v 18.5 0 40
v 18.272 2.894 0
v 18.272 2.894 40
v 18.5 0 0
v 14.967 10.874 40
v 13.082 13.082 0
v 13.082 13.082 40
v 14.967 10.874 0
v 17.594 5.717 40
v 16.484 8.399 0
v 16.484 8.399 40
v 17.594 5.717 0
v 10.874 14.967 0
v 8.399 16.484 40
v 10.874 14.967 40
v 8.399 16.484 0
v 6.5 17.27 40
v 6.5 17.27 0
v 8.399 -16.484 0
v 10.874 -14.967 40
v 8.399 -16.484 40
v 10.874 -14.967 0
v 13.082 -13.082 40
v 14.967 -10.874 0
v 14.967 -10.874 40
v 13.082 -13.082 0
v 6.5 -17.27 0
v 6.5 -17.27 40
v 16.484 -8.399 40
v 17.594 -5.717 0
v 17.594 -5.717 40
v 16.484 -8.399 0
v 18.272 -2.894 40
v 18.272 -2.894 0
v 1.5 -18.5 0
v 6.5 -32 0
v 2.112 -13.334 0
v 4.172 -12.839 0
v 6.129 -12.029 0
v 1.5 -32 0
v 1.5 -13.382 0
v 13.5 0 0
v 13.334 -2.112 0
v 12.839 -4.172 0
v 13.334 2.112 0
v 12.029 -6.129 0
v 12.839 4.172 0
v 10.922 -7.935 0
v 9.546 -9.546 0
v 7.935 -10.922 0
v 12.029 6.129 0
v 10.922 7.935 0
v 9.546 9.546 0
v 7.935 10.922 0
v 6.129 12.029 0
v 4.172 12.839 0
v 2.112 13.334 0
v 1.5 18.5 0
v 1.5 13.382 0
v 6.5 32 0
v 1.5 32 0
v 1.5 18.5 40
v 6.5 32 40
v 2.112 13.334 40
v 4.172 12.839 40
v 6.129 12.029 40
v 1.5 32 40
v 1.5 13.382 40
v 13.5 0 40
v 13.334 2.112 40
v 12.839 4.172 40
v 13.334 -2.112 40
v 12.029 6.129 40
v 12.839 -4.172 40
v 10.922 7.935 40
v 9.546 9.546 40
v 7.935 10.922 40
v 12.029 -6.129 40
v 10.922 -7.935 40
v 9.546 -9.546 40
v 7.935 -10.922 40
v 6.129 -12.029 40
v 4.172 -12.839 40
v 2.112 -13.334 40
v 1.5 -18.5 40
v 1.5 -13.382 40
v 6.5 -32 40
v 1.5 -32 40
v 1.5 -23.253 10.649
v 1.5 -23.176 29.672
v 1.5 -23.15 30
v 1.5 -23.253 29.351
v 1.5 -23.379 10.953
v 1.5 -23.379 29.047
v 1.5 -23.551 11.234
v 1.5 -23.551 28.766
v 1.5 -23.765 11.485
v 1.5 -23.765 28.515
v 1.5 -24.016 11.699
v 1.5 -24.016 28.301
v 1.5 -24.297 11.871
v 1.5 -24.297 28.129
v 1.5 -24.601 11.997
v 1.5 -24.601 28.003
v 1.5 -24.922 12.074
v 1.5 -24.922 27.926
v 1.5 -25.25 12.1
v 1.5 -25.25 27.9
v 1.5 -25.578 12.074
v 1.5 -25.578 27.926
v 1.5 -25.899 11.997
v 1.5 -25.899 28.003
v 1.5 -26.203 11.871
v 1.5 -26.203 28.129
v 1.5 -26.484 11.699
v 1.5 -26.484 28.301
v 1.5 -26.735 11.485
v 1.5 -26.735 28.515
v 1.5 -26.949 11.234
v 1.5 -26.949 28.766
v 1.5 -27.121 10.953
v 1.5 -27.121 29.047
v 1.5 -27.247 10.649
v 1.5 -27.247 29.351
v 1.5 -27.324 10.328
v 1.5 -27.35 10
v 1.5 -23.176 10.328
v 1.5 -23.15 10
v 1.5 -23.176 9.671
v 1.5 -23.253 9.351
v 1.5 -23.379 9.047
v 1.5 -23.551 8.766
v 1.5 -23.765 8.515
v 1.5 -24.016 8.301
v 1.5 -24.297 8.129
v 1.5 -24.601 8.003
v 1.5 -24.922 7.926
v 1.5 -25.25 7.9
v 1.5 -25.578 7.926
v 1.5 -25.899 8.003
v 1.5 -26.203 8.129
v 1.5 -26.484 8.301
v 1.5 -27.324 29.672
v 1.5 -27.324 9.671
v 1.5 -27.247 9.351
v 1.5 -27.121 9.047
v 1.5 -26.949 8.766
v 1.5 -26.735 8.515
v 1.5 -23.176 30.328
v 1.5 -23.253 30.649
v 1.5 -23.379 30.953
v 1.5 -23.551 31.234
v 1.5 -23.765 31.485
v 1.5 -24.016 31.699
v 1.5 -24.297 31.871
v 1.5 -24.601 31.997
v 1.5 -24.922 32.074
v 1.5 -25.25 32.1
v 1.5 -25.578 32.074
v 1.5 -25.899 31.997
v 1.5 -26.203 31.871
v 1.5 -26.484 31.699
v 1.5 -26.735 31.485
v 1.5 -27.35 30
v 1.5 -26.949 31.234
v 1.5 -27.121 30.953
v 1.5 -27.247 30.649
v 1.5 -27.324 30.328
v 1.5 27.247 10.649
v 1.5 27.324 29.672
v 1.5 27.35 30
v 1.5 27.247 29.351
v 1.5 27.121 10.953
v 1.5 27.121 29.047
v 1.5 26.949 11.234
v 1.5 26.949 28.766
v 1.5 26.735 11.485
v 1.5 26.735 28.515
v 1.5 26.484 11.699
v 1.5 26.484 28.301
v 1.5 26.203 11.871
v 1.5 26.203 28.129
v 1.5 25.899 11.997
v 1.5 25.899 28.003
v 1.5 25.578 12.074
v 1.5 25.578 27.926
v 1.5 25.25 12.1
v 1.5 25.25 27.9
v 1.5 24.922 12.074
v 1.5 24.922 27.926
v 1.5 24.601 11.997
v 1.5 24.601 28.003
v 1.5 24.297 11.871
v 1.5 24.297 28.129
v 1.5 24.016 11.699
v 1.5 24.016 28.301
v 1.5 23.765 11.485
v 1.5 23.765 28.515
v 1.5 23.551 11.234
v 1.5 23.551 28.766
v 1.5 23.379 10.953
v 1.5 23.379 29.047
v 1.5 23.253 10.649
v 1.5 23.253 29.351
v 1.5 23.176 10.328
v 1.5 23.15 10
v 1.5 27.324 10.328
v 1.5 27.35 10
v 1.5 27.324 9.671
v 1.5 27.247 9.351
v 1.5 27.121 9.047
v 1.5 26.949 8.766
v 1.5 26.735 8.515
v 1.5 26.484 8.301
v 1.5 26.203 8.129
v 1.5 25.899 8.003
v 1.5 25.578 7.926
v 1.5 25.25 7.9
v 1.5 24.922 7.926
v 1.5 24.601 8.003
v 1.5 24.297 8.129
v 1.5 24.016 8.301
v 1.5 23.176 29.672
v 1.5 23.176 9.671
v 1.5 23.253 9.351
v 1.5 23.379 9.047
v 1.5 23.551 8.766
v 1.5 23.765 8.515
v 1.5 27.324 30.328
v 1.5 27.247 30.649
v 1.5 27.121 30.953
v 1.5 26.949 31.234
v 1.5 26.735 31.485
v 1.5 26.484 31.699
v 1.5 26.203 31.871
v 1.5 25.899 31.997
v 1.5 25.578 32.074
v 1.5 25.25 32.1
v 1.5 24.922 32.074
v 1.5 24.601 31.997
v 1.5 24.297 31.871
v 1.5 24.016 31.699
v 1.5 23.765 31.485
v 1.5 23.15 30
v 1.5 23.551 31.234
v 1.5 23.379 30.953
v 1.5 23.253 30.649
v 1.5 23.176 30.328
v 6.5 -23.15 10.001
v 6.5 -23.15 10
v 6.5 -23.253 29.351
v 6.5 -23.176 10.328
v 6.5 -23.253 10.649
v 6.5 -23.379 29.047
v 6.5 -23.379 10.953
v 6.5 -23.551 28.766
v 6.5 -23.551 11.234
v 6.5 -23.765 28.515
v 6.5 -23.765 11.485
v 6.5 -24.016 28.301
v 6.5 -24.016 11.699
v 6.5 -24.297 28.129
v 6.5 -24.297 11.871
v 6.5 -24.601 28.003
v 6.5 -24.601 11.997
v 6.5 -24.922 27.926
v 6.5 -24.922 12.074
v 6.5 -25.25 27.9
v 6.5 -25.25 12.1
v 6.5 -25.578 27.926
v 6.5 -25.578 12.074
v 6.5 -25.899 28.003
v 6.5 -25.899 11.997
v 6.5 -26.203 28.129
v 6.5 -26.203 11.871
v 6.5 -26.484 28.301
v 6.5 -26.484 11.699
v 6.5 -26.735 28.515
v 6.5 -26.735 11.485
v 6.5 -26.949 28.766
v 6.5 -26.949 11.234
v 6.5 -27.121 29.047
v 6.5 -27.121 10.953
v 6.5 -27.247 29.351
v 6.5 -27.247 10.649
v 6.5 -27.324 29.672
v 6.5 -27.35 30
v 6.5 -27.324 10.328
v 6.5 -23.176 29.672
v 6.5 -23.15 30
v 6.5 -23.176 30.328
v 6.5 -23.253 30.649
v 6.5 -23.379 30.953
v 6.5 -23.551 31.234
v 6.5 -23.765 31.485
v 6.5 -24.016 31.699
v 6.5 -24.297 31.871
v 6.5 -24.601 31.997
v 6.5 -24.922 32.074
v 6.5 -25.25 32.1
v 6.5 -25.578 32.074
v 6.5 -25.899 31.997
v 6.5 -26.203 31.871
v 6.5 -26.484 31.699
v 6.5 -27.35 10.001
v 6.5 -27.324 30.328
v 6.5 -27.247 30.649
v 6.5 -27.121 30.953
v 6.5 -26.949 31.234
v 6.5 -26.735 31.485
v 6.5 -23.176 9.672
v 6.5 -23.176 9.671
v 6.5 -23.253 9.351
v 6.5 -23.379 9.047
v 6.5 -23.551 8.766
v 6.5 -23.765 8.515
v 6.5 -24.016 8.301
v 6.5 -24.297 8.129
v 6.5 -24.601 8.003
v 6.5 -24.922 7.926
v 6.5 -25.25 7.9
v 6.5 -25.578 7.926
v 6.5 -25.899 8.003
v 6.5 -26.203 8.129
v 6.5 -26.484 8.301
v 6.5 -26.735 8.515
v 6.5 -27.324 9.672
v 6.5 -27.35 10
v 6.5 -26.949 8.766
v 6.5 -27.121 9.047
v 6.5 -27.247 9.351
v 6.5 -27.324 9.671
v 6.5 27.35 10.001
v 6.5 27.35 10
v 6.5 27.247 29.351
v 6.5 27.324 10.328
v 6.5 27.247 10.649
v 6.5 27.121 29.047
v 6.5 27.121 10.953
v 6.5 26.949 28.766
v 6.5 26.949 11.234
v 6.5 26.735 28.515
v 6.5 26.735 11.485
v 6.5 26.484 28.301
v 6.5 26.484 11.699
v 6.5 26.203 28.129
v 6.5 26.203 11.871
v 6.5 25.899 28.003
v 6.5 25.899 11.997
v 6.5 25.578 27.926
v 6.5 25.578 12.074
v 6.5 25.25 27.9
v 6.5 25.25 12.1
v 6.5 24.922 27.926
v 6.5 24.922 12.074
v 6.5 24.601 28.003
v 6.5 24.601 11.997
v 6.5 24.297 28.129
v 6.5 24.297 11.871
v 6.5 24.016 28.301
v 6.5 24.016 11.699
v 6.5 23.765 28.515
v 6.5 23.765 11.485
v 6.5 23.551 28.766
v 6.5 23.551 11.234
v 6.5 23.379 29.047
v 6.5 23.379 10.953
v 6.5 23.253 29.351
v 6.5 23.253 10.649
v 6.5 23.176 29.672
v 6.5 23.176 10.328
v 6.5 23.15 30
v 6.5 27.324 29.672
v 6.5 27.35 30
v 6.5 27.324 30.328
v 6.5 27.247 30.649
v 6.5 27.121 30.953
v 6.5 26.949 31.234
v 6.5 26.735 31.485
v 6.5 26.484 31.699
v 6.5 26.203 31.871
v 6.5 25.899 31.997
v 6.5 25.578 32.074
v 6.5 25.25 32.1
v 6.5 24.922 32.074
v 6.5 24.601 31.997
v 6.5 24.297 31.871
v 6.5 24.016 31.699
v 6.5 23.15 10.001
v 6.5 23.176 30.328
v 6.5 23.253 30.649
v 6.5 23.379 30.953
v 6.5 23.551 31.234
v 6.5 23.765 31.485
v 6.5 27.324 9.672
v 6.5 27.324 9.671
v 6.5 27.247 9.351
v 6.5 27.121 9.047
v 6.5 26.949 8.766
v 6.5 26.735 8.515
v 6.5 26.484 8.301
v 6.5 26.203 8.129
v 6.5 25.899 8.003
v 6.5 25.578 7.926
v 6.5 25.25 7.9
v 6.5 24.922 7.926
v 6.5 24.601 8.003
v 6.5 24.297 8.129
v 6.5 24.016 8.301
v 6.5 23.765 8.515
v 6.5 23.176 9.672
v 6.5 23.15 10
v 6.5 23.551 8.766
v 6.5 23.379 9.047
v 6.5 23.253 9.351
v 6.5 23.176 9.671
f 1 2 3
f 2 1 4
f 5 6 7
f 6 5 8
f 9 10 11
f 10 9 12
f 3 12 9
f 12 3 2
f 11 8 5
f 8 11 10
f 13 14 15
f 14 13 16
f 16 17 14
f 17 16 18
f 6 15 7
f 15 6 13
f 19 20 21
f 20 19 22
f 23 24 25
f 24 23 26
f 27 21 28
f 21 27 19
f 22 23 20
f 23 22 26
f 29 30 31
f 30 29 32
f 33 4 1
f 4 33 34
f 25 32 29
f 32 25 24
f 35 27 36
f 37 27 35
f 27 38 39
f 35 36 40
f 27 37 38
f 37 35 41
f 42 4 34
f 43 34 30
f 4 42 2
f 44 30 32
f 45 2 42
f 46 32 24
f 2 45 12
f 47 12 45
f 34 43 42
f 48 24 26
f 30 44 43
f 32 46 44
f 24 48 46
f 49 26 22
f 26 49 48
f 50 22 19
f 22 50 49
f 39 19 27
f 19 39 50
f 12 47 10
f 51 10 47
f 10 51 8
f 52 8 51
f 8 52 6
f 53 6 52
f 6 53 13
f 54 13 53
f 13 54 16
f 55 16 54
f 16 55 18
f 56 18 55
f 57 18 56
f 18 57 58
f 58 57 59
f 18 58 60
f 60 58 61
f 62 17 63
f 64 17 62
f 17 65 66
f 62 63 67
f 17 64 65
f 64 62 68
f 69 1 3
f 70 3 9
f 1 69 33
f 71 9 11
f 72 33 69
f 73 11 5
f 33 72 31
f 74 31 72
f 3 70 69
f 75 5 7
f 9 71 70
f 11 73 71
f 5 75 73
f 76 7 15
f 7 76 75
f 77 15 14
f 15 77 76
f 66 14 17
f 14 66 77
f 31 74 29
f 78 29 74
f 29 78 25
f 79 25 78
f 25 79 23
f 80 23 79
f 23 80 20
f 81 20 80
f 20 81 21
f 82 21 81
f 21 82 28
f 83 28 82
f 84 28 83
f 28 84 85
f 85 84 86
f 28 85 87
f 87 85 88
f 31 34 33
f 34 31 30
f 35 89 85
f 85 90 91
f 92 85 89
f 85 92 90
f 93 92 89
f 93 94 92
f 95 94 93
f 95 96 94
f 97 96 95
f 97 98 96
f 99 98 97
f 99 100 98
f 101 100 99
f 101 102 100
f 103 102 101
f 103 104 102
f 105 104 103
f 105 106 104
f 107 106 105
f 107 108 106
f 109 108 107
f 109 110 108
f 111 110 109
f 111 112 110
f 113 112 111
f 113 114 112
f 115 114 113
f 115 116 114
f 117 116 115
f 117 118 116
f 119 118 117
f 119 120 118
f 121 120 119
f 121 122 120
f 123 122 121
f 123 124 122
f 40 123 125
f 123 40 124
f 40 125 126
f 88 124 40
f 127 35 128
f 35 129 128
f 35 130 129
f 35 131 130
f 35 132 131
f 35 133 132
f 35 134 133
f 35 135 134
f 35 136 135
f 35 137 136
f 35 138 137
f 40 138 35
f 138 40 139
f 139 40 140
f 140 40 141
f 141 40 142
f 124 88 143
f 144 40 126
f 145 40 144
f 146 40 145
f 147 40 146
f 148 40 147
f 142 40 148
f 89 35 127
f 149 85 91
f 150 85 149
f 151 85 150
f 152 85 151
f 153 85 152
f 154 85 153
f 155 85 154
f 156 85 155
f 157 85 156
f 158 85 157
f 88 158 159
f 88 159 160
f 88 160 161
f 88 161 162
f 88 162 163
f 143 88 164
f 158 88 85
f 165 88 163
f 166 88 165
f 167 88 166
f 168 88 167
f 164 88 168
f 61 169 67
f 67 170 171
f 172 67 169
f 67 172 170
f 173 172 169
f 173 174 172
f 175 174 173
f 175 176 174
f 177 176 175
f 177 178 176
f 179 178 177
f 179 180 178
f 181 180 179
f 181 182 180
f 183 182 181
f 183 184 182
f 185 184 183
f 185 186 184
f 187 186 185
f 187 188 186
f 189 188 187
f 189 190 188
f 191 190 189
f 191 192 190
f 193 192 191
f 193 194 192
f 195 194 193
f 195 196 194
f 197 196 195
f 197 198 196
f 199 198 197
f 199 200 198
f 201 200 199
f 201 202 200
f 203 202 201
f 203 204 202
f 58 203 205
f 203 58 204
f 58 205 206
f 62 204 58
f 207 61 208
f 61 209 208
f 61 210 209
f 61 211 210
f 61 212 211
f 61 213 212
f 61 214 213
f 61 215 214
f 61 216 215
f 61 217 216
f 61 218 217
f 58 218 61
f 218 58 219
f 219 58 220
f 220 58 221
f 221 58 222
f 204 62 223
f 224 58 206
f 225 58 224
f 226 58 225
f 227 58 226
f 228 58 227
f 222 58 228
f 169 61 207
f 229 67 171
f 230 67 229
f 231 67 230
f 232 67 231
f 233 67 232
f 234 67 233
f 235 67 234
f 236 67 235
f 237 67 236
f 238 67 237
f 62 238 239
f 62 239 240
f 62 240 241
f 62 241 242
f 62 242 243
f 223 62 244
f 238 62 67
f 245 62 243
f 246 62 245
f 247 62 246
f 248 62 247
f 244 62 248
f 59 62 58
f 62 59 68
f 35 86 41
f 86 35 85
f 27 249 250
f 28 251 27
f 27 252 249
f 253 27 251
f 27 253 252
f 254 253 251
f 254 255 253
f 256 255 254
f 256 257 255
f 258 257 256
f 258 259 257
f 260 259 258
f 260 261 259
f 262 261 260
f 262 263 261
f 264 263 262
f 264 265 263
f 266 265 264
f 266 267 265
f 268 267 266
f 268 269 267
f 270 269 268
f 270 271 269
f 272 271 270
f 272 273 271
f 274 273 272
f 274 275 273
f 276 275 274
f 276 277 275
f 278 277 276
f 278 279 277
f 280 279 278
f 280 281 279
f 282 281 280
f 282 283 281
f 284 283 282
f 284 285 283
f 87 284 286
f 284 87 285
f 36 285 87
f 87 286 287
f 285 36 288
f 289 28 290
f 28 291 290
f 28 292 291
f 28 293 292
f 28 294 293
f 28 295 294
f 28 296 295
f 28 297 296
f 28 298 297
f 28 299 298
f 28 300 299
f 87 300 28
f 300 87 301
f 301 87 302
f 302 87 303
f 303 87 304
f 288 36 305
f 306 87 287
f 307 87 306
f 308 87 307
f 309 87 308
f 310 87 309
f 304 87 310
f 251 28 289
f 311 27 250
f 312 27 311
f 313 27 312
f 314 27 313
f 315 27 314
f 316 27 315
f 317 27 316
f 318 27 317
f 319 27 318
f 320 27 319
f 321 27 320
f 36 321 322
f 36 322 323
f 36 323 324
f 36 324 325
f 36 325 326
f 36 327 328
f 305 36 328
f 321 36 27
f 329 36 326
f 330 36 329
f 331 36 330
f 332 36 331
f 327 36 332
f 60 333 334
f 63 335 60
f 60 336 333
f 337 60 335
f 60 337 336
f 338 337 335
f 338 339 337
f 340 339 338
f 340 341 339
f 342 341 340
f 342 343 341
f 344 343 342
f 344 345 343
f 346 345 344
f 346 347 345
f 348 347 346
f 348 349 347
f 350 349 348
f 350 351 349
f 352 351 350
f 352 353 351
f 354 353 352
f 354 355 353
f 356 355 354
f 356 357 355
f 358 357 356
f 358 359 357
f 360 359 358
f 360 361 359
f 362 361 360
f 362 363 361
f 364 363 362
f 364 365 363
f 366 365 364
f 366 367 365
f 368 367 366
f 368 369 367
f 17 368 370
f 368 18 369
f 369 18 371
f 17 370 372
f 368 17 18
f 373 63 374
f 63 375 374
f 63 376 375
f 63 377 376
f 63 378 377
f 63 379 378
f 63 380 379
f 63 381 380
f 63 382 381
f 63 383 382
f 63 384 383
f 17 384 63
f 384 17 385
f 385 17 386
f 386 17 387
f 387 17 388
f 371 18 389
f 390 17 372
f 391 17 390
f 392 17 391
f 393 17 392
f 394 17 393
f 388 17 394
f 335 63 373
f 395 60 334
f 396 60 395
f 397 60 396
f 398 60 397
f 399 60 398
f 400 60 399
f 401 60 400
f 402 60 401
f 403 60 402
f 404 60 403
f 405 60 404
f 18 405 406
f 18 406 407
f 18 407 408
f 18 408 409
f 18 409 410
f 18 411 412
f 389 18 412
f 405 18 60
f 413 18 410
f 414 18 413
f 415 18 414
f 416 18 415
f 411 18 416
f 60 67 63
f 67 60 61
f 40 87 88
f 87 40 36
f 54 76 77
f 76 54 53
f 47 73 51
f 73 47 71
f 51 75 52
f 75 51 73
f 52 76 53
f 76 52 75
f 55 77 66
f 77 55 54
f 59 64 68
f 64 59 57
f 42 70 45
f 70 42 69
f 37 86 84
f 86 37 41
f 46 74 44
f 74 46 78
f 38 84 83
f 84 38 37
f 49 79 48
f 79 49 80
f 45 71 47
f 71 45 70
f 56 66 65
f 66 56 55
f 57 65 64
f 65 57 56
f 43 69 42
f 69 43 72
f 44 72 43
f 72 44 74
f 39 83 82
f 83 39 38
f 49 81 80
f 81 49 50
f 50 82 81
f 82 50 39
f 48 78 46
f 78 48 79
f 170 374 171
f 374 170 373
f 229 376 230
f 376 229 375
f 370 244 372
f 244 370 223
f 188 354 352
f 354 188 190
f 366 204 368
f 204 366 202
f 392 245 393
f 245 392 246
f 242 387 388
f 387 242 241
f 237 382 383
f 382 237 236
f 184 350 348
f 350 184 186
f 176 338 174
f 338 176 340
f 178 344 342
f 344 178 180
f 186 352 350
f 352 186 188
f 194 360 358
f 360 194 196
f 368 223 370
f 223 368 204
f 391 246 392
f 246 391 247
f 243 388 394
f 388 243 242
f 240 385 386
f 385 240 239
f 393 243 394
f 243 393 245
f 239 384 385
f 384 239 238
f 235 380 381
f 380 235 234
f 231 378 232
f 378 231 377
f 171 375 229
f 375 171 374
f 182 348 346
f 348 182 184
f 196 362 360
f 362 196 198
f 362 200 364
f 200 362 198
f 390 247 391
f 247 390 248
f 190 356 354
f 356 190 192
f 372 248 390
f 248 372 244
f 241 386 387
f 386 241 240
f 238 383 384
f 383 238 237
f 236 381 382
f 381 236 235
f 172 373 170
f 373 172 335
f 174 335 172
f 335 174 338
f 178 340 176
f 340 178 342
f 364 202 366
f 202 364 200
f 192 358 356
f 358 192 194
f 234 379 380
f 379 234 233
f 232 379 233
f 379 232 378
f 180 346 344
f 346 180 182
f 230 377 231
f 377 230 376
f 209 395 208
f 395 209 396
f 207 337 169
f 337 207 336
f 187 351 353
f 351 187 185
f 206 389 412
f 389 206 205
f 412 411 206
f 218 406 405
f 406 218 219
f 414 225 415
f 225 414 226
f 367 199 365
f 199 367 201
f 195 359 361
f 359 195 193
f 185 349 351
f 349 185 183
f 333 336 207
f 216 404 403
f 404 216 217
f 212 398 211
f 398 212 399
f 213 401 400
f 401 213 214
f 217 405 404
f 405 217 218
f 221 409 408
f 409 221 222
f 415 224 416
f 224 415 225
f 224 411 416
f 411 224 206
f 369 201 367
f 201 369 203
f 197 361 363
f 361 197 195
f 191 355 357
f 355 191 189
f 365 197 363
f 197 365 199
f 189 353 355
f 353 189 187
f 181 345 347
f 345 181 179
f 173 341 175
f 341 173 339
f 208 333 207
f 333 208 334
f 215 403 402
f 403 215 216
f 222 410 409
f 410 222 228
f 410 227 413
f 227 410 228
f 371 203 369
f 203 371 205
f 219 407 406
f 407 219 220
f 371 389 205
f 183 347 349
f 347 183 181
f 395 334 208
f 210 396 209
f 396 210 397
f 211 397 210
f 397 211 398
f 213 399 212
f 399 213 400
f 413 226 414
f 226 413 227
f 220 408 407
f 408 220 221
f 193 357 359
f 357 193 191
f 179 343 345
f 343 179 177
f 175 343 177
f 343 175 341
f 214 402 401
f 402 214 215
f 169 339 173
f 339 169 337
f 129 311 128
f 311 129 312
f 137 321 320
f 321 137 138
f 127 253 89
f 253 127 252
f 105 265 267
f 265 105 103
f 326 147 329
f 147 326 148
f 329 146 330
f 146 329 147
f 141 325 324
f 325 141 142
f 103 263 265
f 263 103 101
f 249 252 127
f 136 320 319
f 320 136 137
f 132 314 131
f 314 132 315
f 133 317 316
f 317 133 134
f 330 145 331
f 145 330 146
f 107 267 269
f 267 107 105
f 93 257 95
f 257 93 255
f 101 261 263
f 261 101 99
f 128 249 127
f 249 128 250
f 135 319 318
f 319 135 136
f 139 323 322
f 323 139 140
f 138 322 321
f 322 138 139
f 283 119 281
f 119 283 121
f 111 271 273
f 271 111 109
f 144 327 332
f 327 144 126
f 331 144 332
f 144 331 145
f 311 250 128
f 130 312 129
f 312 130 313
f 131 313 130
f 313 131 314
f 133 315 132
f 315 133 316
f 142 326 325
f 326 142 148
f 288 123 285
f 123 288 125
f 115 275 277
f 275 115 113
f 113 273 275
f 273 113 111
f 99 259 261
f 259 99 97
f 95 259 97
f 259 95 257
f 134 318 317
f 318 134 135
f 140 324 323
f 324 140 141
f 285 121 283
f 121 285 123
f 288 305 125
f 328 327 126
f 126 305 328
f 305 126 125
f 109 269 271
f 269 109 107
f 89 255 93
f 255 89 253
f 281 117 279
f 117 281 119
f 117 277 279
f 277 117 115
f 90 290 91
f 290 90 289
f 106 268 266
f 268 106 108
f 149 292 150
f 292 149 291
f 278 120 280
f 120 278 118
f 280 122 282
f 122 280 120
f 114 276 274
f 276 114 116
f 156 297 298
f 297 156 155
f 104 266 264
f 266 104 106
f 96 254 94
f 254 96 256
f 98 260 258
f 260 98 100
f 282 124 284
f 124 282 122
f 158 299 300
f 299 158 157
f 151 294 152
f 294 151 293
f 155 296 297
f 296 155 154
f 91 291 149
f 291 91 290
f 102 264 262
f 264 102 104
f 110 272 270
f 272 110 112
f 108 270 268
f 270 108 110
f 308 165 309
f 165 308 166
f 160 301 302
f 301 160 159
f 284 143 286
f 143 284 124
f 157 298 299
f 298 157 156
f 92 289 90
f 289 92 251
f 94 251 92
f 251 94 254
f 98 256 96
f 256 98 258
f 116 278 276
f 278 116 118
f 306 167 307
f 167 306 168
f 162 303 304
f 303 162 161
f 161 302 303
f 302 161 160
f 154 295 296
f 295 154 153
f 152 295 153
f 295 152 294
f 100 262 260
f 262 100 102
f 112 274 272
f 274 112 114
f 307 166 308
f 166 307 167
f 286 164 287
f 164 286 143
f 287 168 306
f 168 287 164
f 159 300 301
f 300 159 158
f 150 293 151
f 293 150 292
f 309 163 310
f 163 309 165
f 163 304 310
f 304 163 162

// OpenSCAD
// file: ../SRC/ISLHOLDER01A_D02.scad
$fn=40; // model faces resolution.
include <../configuration.scad>


//Drzak na sloup - cast bez drzaku anemometru
module ISLHOLDER01A_D02(){
	
difference()
    {
    union()
        {
        //základní válec
        cylinder(h=D02_vyska_uchytky,r=(D02_prumer_obruby+2*D02_sila_materialu)/2,center=true);
		//úchytové plošky		
        translate([D02_dotahova_vzdalenost+D02_sila_materialu/2,0,0]){cube([D02_sila_materialu,D02_delka_celeho_uchytu,D02_vyska_uchytky],center=true);}
		}
    
    //válec na odečet
    cylinder(h=D02_vyska_uchytky+0.01,r=D02_prumer_obruby/2,center=true);     
	        
    //kvádr na odecet
	translate([D02_dotahova_vzdalenost-(D02_prumer_obruby+2*D02_sila_materialu)/2,0,0]){cube([D02_prumer_obruby+2*D02_sila_materialu,D02_prumer_obruby+2*D02_sila_materialu,D02_vyska_uchytky+0.01],center=true);}
		
	//otvory na sroub
	translate([D02_dotahova_vzdalenost,(D02_delka_celeho_uchytu/2-D02_prumer_obruby/2-D02_sila_materialu)/2+D02_prumer_obruby/2+D02_sila_materialu,D02_vyska_uchytky/4]){rotate([0,90,0]){cylinder(h=D02_sila_materialu+0.01,r=D02_prumer_uchytneho_sroubu/2);}}
    
     //drzak matky
    translate([D02_dotahova_vzdalenost+D02_sila_materialu-D02_vyska_matky,(D02_delka_celeho_uchytu/2-D02_prumer_obruby/2-D02_sila_materialu)/2+D02_prumer_obruby/2+D02_sila_materialu,D02_vyska_uchytky/4]){rotate([0,90,0]){ cylinder (h = D02_vyska_matky+0.01, r= (D02_sirka_matky+0.2)/2, $fn=6);}}
   
     
        
    translate([D02_dotahova_vzdalenost,(D02_delka_celeho_uchytu/2-D02_prumer_obruby/2-D02_sila_materialu)/2+D02_prumer_obruby/2+D02_sila_materialu,-D02_vyska_uchytky/4]){rotate([0,90,0]){cylinder(h=D02_sila_materialu+0.01,r=D02_prumer_uchytneho_sroubu/2);}}
    
     //drzak matky
    translate([D02_dotahova_vzdalenost+D02_sila_materialu-D02_vyska_matky,(D02_delka_celeho_uchytu/2-D02_prumer_obruby/2-D02_sila_materialu)/2+D02_prumer_obruby/2+D02_sila_materialu,-D02_vyska_uchytky/4]){rotate([0,90,0]){ cylinder (h = D02_vyska_matky+0.01, r= (D02_sirka_matky+0.2)/2, $fn=6);}}
        
	translate([D02_dotahova_vzdalenost,-((D02_delka_celeho_uchytu/2-D02_prumer_obruby/2-D02_sila_materialu)/2+D02_prumer_obruby/2+D02_sila_materialu),-D02_vyska_uchytky/4]){rotate([0,90,0]){cylinder(h=D02_sila_materialu+0.01,r=D02_prumer_uchytneho_sroubu/2);}}
    
     //drzak matky
    translate([D02_dotahova_vzdalenost+D02_sila_materialu-D02_vyska_matky,-((D02_delka_celeho_uchytu/2-D02_prumer_obruby/2-D02_sila_materialu)/2+D02_prumer_obruby/2+D02_sila_materialu),-D02_vyska_uchytky/4]){rotate([0,90,0]){ cylinder (h = D02_vyska_matky+0.01, r= (D02_sirka_matky+0.2)/2, $fn=6);}}

    translate([D02_dotahova_vzdalenost,-((D02_delka_celeho_uchytu/2-D02_prumer_obruby/2-D02_sila_materialu)/2+D02_prumer_obruby/2+D02_sila_materialu),D02_vyska_uchytky/4]){rotate([0,90,0]){cylinder(h=D02_sila_materialu+0.01,r=D02_prumer_uchytneho_sroubu/2);}}	
    
     //drzak matky
    translate([D02_dotahova_vzdalenost+D02_sila_materialu-D02_vyska_matky,-((D02_delka_celeho_uchytu/2-D02_prumer_obruby/2-D02_sila_materialu)/2+D02_prumer_obruby/2+D02_sila_materialu),D02_vyska_uchytky/4]){rotate([0,90,0]){ cylinder (h = D02_vyska_matky+0.01, r= (D02_sirka_matky+0.2)/2, $fn=6);}}
	
    }
}

module ISLHOLDER01A_D02_2(){
	
difference()
    {
    union()
        {
        //základní válec
        cylinder(h=D02_vyska_uchytky,r=(D02_prumer_obruby+2*D02_sila_materialu)/2,center=true);
		//úchytové plošky		
        translate([D02_dotahova_vzdalenost+D02_sila_materialu/2,0,0]){cube([D02_sila_materialu,D02_delka_celeho_uchytu,D02_vyska_uchytky],center=true);}
		}
    
    //válec na odečet
    cylinder(h=D02_vyska_uchytky+0.01,r=D02_prumer_obruby/2,center=true);     
	        
    //kvádr na odecet
	translate([D02_dotahova_vzdalenost-(D02_prumer_obruby+2*D02_sila_materialu)/2,0,0]){cube([D02_prumer_obruby+2*D02_sila_materialu,D02_prumer_obruby+2*D02_sila_materialu,D02_vyska_uchytky+0.01],center=true);}
		
	//otvory na sroub
	translate([D02_dotahova_vzdalenost,(D02_delka_celeho_uchytu/2-D02_prumer_obruby/2-D02_sila_materialu)/2+D02_prumer_obruby/2+D02_sila_materialu,D02_vyska_uchytky/4]){rotate([0,90,0]){cylinder(h=D02_sila_materialu+0.01,r=D02_prumer_uchytneho_sroubu/2);}}
    
    
   
     
        
    translate([D02_dotahova_vzdalenost,(D02_delka_celeho_uchytu/2-D02_prumer_obruby/2-D02_sila_materialu)/2+D02_prumer_obruby/2+D02_sila_materialu,-D02_vyska_uchytky/4]){rotate([0,90,0]){cylinder(h=D02_sila_materialu+0.01,r=D02_prumer_uchytneho_sroubu/2);}}
    
     
        
	translate([D02_dotahova_vzdalenost,-((D02_delka_celeho_uchytu/2-D02_prumer_obruby/2-D02_sila_materialu)/2+D02_prumer_obruby/2+D02_sila_materialu),-D02_vyska_uchytky/4]){rotate([0,90,0]){cylinder(h=D02_sila_materialu+0.01,r=D02_prumer_uchytneho_sroubu/2);}}
    
    

    translate([D02_dotahova_vzdalenost,-((D02_delka_celeho_uchytu/2-D02_prumer_obruby/2-D02_sila_materialu)/2+D02_prumer_obruby/2+D02_sila_materialu),D02_vyska_uchytky/4]){rotate([0,90,0]){cylinder(h=D02_sila_materialu+0.01,r=D02_prumer_uchytneho_sroubu/2);}}	
    
    
	
    }
}


//ISLHOLDER01A_D02();
// file: ../configuration.scad
$fn=40; // model faces resolution.

//Parametry pro D01 a D02
//nastavení držáku na sloup
//Parametry pro D5
//----------------------------------------------------------------
//----------------------------------------------------------------


S01_sila_materialu=1.3; //sila výztuhy

//D01 - uchyt velky
D01_material_pod_zavitem=5;
D01_material_za_zavitem=3;
D01_material_pred_zavitem=2;
D01_delka_tyce=30;
D01_sirka_tyce=15;

//D02 - uchyt na sloup
D02_sila_materialu=5;
D02_vyska_uchytky=40;
D02_prumer_obruby=27; 
//27mm - 3/4 trubka
D02_delka_celeho_uchytu=64;
D02_dotahova_vzdalenost=1.5;
D02_prumer_uchytneho_sroubu=4.2;
D02_sirka_matky=9.1; //pro M4
D02_vyska_matky=3;


D05_vyska_drzaku_senzoru=15;
D05_prumer_zkumavky_vnitrni=21.4;
D05_vyska_podstavce=10;
D05_sirka_otvoru_na_kabel=5;




//není potřeba měnit
S01_prumer_vnitrni=40;
S01_tolerance_zavit=1.5;
// main file
$fn=100; // model faces resolution.
include <../configuration.scad>
use <../SRC/ISLHOLDER01A_D02.scad>

rotate([0, 0, 0])
    translate([0,0,D02_vyska_uchytky/2])
        ISLHOLDER01A_D02_2();

            
